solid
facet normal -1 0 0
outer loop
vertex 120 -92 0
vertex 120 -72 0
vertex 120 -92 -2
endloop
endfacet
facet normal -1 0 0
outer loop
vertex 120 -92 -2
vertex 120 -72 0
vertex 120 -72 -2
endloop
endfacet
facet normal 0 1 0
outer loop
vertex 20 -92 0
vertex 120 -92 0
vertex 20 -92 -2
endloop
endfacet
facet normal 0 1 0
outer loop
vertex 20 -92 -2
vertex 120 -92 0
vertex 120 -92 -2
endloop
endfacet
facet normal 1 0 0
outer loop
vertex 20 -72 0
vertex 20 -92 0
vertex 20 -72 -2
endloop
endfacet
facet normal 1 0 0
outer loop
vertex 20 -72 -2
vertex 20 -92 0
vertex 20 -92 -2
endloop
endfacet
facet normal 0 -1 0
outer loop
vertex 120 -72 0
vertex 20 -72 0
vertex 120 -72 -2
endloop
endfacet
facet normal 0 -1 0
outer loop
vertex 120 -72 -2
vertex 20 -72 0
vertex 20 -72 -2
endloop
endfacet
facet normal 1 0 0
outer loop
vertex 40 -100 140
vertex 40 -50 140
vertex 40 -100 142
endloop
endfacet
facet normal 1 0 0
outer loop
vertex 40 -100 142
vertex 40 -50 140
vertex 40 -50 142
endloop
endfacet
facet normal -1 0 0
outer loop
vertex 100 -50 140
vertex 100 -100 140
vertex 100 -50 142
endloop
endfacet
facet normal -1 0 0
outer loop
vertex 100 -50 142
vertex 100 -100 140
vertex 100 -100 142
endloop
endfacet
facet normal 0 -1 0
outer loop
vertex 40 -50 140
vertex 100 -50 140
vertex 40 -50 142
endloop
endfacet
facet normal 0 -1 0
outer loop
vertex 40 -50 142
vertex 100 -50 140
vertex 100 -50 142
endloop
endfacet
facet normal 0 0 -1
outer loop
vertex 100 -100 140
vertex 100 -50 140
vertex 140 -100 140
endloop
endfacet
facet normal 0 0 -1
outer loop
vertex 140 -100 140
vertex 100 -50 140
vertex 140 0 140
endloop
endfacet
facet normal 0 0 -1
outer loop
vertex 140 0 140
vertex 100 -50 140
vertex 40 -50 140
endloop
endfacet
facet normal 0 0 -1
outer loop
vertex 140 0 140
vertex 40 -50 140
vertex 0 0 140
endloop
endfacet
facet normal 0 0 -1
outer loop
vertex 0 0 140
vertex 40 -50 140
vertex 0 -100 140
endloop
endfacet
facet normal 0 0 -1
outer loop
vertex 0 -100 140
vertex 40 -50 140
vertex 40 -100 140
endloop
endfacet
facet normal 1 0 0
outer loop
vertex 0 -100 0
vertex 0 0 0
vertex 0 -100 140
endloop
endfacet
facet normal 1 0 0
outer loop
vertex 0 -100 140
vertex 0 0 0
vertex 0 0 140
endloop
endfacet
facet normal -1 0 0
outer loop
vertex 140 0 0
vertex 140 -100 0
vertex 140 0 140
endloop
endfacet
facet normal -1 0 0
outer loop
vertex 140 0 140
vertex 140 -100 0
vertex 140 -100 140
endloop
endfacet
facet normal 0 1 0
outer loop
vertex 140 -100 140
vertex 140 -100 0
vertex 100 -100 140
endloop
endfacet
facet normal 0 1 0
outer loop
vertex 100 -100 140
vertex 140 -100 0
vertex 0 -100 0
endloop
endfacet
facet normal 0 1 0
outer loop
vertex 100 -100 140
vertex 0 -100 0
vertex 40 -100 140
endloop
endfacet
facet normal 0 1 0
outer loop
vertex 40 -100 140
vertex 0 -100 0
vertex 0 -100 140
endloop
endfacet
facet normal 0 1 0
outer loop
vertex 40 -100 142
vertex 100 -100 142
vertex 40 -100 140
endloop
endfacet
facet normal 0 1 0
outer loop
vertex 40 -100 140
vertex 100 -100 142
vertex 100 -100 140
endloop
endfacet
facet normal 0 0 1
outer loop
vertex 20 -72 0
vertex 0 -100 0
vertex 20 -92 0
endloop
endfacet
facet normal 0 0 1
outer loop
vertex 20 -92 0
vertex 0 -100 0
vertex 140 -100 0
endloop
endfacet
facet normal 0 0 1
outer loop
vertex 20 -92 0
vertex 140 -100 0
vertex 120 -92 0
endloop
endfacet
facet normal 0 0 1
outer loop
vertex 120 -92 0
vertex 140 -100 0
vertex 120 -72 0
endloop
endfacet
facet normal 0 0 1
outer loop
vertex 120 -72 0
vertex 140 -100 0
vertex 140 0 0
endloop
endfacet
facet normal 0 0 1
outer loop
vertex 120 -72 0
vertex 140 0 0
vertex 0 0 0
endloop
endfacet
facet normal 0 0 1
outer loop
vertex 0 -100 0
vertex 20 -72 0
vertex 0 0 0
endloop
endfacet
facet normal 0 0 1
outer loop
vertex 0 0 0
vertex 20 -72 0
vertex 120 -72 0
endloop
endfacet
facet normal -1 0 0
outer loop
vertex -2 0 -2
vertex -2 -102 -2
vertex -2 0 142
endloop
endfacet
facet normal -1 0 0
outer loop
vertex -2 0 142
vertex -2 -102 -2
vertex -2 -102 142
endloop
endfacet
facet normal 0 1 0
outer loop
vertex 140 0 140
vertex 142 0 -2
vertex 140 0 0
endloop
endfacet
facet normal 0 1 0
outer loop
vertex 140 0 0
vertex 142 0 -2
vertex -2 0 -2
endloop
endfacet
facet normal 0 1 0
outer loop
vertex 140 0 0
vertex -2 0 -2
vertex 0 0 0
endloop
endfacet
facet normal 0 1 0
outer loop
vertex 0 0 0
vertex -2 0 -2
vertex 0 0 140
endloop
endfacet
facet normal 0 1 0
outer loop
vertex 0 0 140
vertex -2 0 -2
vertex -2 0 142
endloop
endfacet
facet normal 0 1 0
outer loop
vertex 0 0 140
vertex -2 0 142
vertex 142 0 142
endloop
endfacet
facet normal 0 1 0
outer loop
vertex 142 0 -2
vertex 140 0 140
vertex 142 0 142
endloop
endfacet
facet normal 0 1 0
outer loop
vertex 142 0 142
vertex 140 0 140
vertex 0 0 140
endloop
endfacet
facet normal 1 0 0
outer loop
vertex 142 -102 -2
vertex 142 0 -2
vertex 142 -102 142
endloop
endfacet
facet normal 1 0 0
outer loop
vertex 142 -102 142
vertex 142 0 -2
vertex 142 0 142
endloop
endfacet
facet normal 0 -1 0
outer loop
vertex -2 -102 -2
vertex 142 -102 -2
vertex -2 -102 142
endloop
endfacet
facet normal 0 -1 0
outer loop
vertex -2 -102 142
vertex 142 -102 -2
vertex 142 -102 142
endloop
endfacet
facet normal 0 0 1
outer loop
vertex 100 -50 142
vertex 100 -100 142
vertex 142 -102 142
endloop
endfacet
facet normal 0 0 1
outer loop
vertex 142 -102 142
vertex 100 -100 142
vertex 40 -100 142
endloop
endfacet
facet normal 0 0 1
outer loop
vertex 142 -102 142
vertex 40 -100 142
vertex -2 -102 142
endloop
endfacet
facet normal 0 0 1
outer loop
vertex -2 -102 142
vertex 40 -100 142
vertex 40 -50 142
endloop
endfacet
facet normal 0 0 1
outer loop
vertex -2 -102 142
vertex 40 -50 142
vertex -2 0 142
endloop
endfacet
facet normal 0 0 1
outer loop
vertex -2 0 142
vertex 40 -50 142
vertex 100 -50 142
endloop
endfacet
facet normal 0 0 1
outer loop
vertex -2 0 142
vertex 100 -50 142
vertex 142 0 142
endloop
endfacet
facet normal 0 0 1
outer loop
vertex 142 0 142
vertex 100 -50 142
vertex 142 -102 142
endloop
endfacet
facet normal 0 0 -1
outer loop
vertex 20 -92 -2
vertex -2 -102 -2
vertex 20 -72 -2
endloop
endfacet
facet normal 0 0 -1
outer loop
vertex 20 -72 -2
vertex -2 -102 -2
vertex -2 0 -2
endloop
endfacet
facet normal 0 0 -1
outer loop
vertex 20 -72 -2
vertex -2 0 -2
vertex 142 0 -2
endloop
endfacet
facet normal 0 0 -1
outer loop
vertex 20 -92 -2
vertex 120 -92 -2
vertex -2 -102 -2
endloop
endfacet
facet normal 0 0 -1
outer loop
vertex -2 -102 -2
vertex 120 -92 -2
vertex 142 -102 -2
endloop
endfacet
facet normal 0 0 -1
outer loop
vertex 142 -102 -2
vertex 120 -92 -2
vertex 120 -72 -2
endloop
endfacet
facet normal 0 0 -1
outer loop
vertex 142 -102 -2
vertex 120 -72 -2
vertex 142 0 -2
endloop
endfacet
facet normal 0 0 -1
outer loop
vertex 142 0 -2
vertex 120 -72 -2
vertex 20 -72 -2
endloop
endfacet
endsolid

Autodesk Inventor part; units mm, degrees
ref_plane "YZ Plane" through (0, 0, 0) normal (1, 0, 0) x (0, 1, 0)
ref_plane "XZ Plane" through (0, 0, 0) normal (0, 1, 0) x (-1, 0, 0)
ref_plane "XY Plane" through (0, 0, 0) normal (0, 0, 1) x (1, 0, 0)
sketch "Sketch1" plane through (0, 0, 0) normal (0, 0, 1) x (1, 0, 0)
  line L0 (0, 0) -> (140, 0)
  line L1 (140, 0) -> (140, -100)
  line L2 (140, -100) -> (0, -100)
  line L3 (0, -100) -> (0, 0)
  dimension "d0" = 100
  dimension "d1" = 140
extrude "Extrusion1" add sketch "Sketch1" along normal blind 140
shell "Shell1" thickness 2 outward yes removed faces 1 at (93.3333, 0, 93.3333)
sketch "Sketch2" plane through (0, 0, 142) normal (0, 0, 1) x (1, 0, 0)
  line L0 (0, -100) -> (140, -100) projected
  line L1 (40, -50) -> (100, -50)
  line L2 (100, -50) -> (100, -100)
  line L3 (100, -100) -> (40, -100)
  line L4 (40, -100) -> (40, -50)
  line L5 (0, 0) -> (0, -100) projected
  line L6 (140, -100) -> (140, 0) projected
  line L7 (142, 0) -> (-2, 0) projected
  point P0 (40, -75)
  dimension "d5" = 40
  dimension "d6" = 40
  dimension "d7" = 50
extrude "Extrusion2" cut sketch "Sketch2" against normal blind 14 contours L4 L1 L2 L0
sketch "Sketch3" plane through (0, 0, -2) normal (0, 0, -1) x (-1, 0, 0)
  line L0 (-120, -72) -> (-20, -72)
  line L1 (-20, -72) -> (-20, -92)
  line L2 (-20, -92) -> (-120, -92)
  line L3 (-120, -92) -> (-120, -72)
  line L4 (0, 0) -> (0, -100) projected
  line L5 (-140, -100) -> (-140, 0) projected
  line L6 (2, -102) -> (-142, -102) projected
  point P0 (-120, -82)
  dimension "d13" = 20
  dimension "d14" = 20
  dimension "d15" = 20
  dimension "d16" = 10
extrude "Extrusion4" cut sketch "Sketch3" against normal blind 10
properties part number "Part2 Zaid"
